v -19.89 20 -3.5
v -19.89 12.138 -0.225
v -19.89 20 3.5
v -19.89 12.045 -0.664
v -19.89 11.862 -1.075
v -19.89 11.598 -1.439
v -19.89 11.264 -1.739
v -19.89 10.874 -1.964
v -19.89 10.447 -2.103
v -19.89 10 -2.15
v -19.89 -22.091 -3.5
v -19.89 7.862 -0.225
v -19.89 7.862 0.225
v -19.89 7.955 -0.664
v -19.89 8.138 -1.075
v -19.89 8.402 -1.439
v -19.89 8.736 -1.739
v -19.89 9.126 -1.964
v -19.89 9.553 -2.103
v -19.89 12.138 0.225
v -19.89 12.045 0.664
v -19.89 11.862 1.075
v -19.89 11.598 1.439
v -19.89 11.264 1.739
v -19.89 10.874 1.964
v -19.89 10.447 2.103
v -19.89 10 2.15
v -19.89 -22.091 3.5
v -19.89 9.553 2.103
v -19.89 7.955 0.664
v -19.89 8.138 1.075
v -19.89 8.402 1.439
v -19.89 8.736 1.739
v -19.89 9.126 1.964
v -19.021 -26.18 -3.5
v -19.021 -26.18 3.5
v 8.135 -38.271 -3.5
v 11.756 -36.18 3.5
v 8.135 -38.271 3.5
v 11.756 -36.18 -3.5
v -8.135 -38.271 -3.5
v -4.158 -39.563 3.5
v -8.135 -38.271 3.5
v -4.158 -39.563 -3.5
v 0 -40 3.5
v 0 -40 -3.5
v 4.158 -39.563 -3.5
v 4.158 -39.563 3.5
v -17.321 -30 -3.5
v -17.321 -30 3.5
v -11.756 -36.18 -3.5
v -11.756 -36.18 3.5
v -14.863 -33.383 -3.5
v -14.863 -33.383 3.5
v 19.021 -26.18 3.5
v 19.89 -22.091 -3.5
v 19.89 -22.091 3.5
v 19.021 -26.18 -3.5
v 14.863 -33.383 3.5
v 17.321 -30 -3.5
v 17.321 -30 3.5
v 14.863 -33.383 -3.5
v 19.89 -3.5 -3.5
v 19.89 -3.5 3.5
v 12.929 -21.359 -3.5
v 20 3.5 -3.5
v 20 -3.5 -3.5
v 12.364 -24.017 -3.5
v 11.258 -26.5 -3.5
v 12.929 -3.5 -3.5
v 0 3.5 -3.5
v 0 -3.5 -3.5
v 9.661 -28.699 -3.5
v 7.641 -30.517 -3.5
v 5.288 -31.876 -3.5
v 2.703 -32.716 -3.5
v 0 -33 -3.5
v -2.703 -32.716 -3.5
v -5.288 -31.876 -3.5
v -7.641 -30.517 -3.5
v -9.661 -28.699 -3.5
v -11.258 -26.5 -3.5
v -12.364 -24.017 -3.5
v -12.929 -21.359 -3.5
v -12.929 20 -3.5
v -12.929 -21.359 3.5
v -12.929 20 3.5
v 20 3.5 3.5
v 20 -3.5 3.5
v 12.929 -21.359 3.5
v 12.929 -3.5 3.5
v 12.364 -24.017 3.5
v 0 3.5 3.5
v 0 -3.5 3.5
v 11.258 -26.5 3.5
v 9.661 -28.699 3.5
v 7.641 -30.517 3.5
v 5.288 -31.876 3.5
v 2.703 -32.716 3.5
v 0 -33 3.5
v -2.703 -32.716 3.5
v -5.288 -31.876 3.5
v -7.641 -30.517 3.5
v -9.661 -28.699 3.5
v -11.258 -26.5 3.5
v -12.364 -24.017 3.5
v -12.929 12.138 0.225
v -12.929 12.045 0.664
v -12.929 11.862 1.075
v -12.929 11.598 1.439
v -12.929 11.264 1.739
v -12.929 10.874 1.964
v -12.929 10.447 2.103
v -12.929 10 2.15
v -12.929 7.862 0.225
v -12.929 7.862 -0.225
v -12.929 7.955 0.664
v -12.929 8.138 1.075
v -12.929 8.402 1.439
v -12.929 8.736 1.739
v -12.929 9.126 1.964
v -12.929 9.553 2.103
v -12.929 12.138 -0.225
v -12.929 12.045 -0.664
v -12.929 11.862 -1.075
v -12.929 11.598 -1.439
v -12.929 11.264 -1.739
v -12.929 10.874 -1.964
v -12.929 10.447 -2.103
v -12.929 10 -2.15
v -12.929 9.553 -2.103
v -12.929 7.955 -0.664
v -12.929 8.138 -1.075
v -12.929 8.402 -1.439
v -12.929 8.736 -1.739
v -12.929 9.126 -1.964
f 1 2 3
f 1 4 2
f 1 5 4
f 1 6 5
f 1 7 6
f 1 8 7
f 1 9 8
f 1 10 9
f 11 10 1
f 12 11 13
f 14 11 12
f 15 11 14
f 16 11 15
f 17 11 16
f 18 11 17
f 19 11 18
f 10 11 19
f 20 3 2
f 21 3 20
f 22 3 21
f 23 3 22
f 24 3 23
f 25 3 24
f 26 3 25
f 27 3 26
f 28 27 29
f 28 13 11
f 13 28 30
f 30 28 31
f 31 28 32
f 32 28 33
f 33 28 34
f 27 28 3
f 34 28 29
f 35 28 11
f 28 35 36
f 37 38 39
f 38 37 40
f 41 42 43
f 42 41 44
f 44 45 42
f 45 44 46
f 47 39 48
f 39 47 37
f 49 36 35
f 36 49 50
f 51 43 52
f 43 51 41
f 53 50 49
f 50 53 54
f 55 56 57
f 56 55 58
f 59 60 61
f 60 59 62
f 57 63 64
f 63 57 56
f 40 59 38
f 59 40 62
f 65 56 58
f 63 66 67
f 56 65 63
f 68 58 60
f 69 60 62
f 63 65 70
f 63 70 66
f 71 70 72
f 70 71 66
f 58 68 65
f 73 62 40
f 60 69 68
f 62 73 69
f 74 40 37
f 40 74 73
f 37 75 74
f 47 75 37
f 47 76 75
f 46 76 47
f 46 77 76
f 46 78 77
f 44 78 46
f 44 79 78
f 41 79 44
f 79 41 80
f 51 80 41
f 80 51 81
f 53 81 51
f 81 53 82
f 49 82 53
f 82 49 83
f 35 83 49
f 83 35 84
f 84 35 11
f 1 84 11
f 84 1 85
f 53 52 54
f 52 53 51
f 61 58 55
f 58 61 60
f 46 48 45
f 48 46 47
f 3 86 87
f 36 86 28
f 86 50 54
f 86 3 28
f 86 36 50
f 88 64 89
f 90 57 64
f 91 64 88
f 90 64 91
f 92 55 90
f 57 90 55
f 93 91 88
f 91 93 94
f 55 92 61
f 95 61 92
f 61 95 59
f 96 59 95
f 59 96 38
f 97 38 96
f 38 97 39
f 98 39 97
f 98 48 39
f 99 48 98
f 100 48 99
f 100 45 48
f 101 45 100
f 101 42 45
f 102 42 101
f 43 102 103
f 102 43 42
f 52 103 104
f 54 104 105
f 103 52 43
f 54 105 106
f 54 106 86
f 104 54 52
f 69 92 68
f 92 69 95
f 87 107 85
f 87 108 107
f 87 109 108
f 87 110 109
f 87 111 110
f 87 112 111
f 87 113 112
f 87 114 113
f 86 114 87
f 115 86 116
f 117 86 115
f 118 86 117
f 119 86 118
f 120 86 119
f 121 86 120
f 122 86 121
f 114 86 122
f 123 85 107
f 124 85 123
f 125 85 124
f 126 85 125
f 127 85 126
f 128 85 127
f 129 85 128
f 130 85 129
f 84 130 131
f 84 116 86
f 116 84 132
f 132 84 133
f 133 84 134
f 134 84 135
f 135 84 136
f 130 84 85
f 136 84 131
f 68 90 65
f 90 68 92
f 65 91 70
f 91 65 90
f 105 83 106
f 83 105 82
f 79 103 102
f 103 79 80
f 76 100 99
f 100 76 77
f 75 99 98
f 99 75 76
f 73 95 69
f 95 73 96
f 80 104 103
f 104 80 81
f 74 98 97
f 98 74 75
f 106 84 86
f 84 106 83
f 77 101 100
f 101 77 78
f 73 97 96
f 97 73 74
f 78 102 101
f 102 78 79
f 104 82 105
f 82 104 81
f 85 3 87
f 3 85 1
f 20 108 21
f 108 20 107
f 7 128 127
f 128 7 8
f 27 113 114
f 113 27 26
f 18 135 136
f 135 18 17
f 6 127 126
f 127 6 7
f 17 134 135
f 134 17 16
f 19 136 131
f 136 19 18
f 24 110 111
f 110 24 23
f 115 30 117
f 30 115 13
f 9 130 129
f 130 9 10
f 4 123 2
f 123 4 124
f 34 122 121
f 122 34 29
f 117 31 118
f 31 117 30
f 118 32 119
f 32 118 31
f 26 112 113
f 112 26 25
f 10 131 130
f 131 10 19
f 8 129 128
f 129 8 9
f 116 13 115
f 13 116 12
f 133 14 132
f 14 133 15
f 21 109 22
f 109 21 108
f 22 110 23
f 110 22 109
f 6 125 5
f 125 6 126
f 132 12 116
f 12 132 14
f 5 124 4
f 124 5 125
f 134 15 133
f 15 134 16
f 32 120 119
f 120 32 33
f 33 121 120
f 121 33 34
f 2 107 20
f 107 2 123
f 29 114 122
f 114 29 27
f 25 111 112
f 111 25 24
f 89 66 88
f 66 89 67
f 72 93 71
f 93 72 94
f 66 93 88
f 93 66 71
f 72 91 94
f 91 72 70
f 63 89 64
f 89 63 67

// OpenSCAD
// file: ../../scadLib/library.scad
////////////////////////////////////////////////////////////////////////////////////////////////////
module plate4Point(x,y,z,d){
	hull(){
		color("green") translate([(x/2)-(d/2) ,(y/2) -(d/2),0]) cylinder(h=z, d=d, center=true);
		color("blue")  translate([(x/2)-(d/2) ,-(y/2)+(d/2),0]) cylinder(h=z, d=d, center=true);
		color("red")   translate([-(x/2)+(d/2),(y/2) -(d/2),0]) cylinder(h=z, d=d, center=true);
		color("grey")  translate([-(x/2)+(d/2),-(y/2)+(d/2),0]) cylinder(h=z, d=d, center=true);
	}
}
////////////////////////////////////////////////////////////////////////////////////////////////////
module plate2Point(x,z,d){
	hull(){
		color("green") translate([(x/2) -(d/2),0 ,0]) cylinder(h=z, d=d, center=true);
		color("blue")  translate([-(x/2)+(d/2),0 ,0]) cylinder(h=z, d=d, center=true);
	}
}
////////////////////////////////////////////////////////////////////////////////////////////////////
module triagleSphere(iX, iY, iZ, iD){
	
	halfD = iD/2;
	hull(){
		color("red")		translate([-halfD   , (iY/2)-halfD, halfD]) sphere(d=iD);	
		color("grey")		translate([-iX+halfD, (iY/2)-halfD, halfD]) sphere(d=iD);
		color("green")	translate([-halfD   , (iY/2)-halfD, iZ-halfD]) sphere(d=iD);

		color("red")		translate([-halfD   , -(iY/2)+halfD, halfD]) sphere(d=iD);
		color("grey")		translate([-iX+halfD, -(iY/2)+halfD, halfD]) sphere(d=iD);
		color("green")	translate([-halfD   , -(iY/2)+halfD, iZ-halfD]) sphere(d=iD);
	}
}
////////////////////////////////////////////////////////////////////////////////////////////////////
module cubeSphere(iX, iYm, iZ, iD){

	edgeDiamitor = iD;
	
	hull(){
		for(a=[[1,1,1],[-1,1,1],[1,-1,1],[-1,-1,1],[1,1,-1],[-1,1,-1],[1,-1,-1],[-1,-1,-1]]){
			translate([
				a[0]*((iX/2) -(edgeDiamitor/2)), 
				a[1]*((iYm/2)-(edgeDiamitor/2)), 
				a[2]*((iZ/2) -(edgeDiamitor/2))]) sphere(d=edgeDiamitor);
		}
	}
} 
////////////////////////////////////////////////////////////////////////////////////////////////////
module mText(l, letter_size = 10, letter_height = 4) {
// Use linear_extrude() to make the letters 3D objects as they
// are only 2D shapes when only using text()
	font = "Bitstream Vera Sans:style=Bold" ;
	linear_extrude(height = letter_height) {
		text(l, size = letter_size, font = font, halign = "center", valign = "center", $fn = 16);
	}
}
module roundedTrapezoid(x1=1, y1=1,x2=1, y2=1, z1=1, d1=6){
  hull(){
  // top Right
    translate([-x1,y1,0])
      cylinder(h=z1,d=d1,center=true);
  // Top Left
    translate([-x1,-y1,0])
      cylinder(h=z1,d=d1,center=true);
  // Bottom Right
    translate([-x2,y2,0])
      cylinder(h=z1,d=d1,center=true);
  // Bottom Left
    translate([-x2,-y2,0])
      cylinder(h=z1,d=d1,center=true);
  }
}
// main file
$fn=30;

use<../../scadLib/library.scad>;

hookX = 40;
hookY = 80;
hookZ = 7;
hookD = 10;

sh = 4.3;

difference(){
	rotate([0,0,90])
		plate2Point(hookY,hookZ,hookX);

	rotate([0,0,90]) translate([0,0,0]) 
		plate2Point(hookY-hookZ*2,hookZ+1,hookX-hookZ*2);
	rotate([0,0,90]) translate([10,0,0]) 
		plate2Point(hookY-hookZ*2,hookZ+1,hookX-hookZ*2);
	
	translate([10,hookX,0])
		cube([hookX+1,hookY,hookZ+1],center=true);

	translate([(hookX/2)-((hookZ+1)/2),hookY/2,0])
		cube([hookZ+1,hookY,hookZ+1],center=true);

	translate([-(hookX/2)+((hookZ+1)/2),hookY-20,0])
		cube([hookZ+1,hookY,hookZ+1],center=true);

	translate([-(hookX/2)+((hookZ+1)/2)+2,hookY-20,0])
		cube([hookZ+1,hookY,hookZ+1],center=true);
	
	translate([-(hookX/2)+hookZ/2,10,0]) rotate([0,90,0])
		cylinder(h=hookZ+1, d=sh, center=true);
}
translate([hookX/4,0,0])
	cube([hookX/2,hookZ,hookZ],center=true);
